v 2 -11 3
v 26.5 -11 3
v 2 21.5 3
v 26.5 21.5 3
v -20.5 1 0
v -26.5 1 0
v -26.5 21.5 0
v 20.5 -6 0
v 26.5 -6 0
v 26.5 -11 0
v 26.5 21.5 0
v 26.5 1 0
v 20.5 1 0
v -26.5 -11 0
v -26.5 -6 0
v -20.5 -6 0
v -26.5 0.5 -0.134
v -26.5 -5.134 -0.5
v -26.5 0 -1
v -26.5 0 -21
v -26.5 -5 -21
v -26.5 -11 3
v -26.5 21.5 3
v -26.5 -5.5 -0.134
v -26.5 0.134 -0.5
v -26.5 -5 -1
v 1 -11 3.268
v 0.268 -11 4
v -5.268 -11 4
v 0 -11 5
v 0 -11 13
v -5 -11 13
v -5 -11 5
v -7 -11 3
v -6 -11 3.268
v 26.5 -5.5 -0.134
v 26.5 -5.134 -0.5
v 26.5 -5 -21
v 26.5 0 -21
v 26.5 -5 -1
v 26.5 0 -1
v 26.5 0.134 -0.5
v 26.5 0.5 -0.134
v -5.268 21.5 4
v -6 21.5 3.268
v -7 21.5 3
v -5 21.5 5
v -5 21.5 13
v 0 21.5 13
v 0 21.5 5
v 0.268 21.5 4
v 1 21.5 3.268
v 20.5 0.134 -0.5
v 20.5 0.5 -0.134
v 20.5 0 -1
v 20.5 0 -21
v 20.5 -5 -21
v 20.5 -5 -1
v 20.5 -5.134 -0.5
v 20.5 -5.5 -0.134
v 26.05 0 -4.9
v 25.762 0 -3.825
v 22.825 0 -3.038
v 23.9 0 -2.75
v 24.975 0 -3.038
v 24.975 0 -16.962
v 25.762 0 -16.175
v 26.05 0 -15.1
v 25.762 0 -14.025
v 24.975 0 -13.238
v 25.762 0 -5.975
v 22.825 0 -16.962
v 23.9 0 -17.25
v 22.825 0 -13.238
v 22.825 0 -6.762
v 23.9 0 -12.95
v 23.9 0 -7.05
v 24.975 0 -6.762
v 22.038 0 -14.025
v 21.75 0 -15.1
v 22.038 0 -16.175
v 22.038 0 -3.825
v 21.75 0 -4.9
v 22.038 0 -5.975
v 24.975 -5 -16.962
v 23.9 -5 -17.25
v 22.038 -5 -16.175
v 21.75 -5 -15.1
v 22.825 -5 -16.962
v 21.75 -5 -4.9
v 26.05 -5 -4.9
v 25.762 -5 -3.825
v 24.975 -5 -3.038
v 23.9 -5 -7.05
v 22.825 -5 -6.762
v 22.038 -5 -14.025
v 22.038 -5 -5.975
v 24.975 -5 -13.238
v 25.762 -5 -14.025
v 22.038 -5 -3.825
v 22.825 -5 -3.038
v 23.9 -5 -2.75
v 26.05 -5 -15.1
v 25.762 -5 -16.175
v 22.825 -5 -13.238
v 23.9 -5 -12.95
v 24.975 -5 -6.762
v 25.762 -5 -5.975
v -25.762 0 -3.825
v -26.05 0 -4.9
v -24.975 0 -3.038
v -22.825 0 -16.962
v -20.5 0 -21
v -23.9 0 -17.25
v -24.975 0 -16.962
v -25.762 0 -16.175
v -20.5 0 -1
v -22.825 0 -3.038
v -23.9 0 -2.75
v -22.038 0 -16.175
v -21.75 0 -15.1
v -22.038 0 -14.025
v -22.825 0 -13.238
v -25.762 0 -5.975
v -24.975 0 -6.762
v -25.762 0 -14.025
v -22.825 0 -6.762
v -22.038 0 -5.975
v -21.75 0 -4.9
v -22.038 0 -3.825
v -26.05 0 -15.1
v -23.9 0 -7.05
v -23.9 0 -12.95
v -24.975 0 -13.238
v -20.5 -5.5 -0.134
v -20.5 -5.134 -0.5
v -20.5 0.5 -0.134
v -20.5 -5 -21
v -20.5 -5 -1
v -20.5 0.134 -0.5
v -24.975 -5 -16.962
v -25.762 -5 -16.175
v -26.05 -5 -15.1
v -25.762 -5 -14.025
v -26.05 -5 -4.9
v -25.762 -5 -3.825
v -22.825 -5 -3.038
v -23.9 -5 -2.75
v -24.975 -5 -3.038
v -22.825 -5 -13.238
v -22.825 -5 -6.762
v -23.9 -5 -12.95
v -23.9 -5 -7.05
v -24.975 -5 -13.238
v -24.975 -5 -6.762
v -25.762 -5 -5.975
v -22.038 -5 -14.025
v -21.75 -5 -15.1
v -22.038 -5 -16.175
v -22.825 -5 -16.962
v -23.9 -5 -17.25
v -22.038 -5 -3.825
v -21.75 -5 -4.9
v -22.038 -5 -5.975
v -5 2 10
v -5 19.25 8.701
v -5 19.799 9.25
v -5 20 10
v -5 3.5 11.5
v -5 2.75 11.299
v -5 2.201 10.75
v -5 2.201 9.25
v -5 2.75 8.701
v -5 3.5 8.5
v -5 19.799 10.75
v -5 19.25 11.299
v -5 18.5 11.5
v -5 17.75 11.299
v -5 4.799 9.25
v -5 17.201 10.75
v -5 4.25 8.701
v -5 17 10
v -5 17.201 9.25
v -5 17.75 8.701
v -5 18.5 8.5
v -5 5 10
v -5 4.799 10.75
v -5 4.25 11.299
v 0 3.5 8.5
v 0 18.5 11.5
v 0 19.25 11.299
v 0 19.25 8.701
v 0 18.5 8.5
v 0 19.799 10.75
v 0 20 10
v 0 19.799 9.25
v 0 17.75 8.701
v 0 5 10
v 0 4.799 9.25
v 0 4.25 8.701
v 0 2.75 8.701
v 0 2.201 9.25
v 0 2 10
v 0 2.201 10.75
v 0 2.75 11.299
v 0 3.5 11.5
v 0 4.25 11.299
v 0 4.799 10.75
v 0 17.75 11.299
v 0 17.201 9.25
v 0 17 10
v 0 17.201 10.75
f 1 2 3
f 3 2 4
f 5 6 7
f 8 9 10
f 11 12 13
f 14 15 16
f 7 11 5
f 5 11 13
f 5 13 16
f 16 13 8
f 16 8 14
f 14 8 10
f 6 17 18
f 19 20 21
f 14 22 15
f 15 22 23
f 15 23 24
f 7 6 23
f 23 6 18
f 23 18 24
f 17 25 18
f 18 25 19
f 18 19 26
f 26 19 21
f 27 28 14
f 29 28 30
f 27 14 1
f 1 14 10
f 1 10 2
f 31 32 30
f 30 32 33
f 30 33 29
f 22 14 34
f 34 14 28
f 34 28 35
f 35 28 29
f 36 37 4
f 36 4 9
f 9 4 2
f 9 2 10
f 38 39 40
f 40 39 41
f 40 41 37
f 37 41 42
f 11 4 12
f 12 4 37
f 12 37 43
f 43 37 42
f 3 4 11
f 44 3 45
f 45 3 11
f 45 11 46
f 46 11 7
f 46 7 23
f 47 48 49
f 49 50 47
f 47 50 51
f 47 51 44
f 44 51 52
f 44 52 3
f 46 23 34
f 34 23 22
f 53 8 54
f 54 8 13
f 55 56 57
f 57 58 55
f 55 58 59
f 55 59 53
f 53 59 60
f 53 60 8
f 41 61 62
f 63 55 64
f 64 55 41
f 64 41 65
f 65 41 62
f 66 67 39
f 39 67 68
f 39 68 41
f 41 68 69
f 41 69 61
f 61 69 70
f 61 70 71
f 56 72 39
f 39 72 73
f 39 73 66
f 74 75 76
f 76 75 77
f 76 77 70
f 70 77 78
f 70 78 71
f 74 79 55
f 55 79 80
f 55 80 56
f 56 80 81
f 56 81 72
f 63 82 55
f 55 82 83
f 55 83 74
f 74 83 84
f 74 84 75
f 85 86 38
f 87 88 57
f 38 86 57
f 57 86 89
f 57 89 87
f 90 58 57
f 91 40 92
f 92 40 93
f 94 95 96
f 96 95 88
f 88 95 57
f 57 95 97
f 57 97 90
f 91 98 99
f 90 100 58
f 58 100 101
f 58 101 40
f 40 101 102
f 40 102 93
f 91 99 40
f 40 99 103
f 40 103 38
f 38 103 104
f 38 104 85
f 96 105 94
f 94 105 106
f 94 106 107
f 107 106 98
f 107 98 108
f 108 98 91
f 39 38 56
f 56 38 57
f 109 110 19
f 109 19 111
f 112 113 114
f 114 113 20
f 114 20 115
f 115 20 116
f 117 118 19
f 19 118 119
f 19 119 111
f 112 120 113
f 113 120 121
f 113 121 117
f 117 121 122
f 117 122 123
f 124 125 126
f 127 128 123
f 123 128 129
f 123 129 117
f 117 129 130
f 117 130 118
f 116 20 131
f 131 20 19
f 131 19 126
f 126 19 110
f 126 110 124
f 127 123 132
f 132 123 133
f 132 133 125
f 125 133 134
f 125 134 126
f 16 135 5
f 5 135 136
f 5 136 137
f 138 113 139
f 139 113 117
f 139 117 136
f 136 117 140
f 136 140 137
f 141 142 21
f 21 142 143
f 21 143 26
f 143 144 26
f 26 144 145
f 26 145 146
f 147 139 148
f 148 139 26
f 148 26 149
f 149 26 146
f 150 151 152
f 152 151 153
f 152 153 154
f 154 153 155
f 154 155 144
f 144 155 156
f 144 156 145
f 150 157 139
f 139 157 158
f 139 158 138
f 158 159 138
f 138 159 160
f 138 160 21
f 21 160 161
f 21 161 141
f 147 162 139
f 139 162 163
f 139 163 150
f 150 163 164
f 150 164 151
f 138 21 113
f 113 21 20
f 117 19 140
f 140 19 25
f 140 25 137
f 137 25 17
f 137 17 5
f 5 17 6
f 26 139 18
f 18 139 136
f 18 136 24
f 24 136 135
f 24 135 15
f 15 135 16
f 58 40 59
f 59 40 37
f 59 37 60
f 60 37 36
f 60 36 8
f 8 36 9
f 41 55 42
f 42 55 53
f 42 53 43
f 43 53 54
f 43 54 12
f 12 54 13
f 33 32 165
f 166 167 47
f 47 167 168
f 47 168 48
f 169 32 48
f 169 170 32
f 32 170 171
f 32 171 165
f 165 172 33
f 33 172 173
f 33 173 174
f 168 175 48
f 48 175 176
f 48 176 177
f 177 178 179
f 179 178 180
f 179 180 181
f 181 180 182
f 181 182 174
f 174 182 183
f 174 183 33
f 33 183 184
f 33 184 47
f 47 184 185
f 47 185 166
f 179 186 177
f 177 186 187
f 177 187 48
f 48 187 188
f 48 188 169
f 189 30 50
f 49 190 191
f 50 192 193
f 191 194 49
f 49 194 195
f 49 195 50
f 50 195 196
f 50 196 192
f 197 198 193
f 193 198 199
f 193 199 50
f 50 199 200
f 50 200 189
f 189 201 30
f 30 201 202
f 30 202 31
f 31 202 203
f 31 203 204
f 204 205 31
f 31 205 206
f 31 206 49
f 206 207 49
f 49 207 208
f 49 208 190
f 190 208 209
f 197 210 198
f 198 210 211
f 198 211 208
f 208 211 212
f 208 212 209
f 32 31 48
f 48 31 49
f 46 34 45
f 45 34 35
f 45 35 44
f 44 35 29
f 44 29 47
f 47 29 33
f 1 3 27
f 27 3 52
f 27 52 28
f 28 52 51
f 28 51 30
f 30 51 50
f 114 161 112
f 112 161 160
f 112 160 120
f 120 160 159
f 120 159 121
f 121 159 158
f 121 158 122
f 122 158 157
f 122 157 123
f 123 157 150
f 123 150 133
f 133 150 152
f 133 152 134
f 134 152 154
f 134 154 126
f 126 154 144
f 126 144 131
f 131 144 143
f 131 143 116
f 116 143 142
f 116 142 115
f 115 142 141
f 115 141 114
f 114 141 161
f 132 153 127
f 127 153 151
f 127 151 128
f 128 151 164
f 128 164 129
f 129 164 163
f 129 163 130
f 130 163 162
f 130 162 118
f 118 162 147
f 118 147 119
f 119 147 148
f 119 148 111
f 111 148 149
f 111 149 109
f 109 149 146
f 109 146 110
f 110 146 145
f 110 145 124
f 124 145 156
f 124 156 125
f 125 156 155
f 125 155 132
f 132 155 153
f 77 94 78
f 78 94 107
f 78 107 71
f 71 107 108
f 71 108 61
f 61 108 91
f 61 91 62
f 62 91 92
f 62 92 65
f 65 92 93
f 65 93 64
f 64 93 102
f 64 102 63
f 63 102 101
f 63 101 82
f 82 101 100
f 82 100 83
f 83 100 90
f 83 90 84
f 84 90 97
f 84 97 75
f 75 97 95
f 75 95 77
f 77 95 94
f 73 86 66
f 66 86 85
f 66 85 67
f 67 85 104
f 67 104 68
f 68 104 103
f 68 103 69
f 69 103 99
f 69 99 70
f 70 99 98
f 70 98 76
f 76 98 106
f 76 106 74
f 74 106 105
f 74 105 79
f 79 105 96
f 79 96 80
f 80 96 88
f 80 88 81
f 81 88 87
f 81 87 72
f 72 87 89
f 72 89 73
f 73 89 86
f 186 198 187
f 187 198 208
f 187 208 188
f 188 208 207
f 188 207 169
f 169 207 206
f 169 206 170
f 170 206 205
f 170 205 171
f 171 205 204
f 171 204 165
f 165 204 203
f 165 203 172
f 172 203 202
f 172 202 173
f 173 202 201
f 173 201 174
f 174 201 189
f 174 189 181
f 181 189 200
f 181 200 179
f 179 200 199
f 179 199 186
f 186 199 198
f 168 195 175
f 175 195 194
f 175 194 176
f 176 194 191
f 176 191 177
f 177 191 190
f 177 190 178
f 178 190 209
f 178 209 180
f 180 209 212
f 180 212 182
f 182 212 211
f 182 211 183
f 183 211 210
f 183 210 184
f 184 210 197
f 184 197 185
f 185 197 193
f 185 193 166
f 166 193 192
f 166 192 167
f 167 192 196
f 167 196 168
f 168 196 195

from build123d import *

# Parameters (mm, degrees)
SKETCH1_W           = 53
SKETCH1_H           = 32.5
BOSS_EXTRUDE1_DEPTH = 3
SKETCH2_W           = 6
SKETCH2_H           = 5
BOSS_EXTRUDE2_DEPTH = 21
FILLET1_R           = 1
SKETCH3_W           = 5
SKETCH3_H           = 32.5
BOSS_EXTRUDE3_DEPTH = 10
FILLET2_R           = 2
SKETCH4_R           = 2.15
CUT_EXTRUDE1_DEPTH  = 10
SKETCH5_R           = 1.5
CUT_EXTRUDE2_DEPTH  = 10


with BuildPart() as part:
    # Sketch1 → Boss-Extrude1 (new body)
    with BuildSketch(Plane.XY):
        with Locations((0, 5.25)):
            Rectangle(SKETCH1_W, SKETCH1_H)
    extrude(amount=BOSS_EXTRUDE1_DEPTH)

    # Sketch2 → Boss-Extrude2 (add)
    with BuildSketch(Plane(origin=(0, 0, 0), x_dir=(-1, 0, 0), z_dir=(0, 0, -1))):
        with Locations((23.5, -2.5)):
            Rectangle(SKETCH2_W, SKETCH2_H)
        with Locations((-23.5, -2.5)):
            Rectangle(SKETCH2_W, SKETCH2_H)
    extrude(amount=BOSS_EXTRUDE2_DEPTH)

    # Fillet1
    fillet1_edges = [part.edges().sort_by_distance(p)[0] for p in [
        (23.5, 0, 0),
        (23.5, -5, 0),
        (-23.5, 0, 0),
        (-23.5, -5, 0),
    ]]
    fillet(fillet1_edges, radius=FILLET1_R)

    # Sketch3 → Boss-Extrude3 (add)
    with BuildSketch(Plane.XY.offset(3)):
        with Locations((-2.5, 5.25)):
            Rectangle(SKETCH3_W, SKETCH3_H)
    extrude(amount=BOSS_EXTRUDE3_DEPTH)

    # Fillet2
    fillet2_edges = [part.edges().sort_by_distance(p)[0] for p in [
        (-5, 5.25, 3),
        (0, 5.25, 3),
    ]]
    fillet(fillet2_edges, radius=FILLET2_R)

    # Sketch4 → Cut-Extrude1 (cut)
    with BuildSketch(Plane.XZ.offset(5)):
        with Locations(Location((23.9, -4.9, 0), (0, 0, 270))):
            Circle(SKETCH4_R)
        with Locations(Location((23.9, -15.1, 0), (0, 0, 270))):
            Circle(SKETCH4_R)
        with Locations(Location((-23.9, -4.9, 0), (0, 0, 270))):
            Circle(SKETCH4_R)
        with Locations(Location((-23.9, -15.1, 0), (0, 0, 270))):
            Circle(SKETCH4_R)
    extrude(amount=-CUT_EXTRUDE1_DEPTH, mode=Mode.SUBTRACT)

    # Sketch5 → Cut-Extrude2 (cut)
    with BuildSketch(Plane(origin=(0, 0, 0), x_dir=(0, 0, -1), z_dir=(1, 0, 0))):
        with Locations(Location((-10, 18.5, 0), (0, 0, 90))):
            Circle(SKETCH5_R)
        with Locations(Location((-10, 3.5, 0), (0, 0, 90))):
            Circle(SKETCH5_R)
    extrude(amount=-CUT_EXTRUDE2_DEPTH, mode=Mode.SUBTRACT)


solid = part.part
